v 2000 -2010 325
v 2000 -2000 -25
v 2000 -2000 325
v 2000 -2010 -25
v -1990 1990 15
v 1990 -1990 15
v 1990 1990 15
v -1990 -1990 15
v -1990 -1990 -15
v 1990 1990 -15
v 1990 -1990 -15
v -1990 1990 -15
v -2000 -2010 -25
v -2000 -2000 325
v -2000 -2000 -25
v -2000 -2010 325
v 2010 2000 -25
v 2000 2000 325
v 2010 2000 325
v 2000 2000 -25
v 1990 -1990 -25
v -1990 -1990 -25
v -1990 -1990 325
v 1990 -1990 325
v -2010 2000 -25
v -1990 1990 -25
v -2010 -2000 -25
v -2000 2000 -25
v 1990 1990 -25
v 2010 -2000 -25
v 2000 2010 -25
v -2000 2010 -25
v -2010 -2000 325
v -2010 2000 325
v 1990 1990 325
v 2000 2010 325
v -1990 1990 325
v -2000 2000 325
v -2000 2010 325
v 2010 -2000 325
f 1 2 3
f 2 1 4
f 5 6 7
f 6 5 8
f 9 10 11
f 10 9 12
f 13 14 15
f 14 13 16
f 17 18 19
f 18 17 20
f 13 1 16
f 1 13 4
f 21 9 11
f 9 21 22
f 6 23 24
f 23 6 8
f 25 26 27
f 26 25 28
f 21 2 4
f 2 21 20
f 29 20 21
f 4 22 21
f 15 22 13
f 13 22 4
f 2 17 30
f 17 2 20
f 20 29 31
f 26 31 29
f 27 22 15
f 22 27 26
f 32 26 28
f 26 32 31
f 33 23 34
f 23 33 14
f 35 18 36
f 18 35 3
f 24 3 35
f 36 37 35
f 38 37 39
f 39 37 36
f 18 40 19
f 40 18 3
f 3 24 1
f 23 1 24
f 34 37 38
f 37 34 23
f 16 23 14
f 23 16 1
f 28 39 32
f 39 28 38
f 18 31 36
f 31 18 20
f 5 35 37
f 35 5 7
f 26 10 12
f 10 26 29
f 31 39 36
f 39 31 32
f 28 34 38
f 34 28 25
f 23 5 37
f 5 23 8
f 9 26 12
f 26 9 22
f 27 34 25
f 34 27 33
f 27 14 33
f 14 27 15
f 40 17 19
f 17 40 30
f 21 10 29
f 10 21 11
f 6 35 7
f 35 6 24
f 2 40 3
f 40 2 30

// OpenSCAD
cube([4000,4000,30],true);
rotate([90,0,0]) translate([0,150,2000])cube([4000,350,20],true);
rotate([90,0,0]) translate([0,150,-2000])cube([4000,350,20],true);
rotate([90,0,90]) translate([0,150,-2000])cube([4000,350,20],true);
rotate([90,0,90]) translate([0,150,2000])cube([4000,350,20],true);
